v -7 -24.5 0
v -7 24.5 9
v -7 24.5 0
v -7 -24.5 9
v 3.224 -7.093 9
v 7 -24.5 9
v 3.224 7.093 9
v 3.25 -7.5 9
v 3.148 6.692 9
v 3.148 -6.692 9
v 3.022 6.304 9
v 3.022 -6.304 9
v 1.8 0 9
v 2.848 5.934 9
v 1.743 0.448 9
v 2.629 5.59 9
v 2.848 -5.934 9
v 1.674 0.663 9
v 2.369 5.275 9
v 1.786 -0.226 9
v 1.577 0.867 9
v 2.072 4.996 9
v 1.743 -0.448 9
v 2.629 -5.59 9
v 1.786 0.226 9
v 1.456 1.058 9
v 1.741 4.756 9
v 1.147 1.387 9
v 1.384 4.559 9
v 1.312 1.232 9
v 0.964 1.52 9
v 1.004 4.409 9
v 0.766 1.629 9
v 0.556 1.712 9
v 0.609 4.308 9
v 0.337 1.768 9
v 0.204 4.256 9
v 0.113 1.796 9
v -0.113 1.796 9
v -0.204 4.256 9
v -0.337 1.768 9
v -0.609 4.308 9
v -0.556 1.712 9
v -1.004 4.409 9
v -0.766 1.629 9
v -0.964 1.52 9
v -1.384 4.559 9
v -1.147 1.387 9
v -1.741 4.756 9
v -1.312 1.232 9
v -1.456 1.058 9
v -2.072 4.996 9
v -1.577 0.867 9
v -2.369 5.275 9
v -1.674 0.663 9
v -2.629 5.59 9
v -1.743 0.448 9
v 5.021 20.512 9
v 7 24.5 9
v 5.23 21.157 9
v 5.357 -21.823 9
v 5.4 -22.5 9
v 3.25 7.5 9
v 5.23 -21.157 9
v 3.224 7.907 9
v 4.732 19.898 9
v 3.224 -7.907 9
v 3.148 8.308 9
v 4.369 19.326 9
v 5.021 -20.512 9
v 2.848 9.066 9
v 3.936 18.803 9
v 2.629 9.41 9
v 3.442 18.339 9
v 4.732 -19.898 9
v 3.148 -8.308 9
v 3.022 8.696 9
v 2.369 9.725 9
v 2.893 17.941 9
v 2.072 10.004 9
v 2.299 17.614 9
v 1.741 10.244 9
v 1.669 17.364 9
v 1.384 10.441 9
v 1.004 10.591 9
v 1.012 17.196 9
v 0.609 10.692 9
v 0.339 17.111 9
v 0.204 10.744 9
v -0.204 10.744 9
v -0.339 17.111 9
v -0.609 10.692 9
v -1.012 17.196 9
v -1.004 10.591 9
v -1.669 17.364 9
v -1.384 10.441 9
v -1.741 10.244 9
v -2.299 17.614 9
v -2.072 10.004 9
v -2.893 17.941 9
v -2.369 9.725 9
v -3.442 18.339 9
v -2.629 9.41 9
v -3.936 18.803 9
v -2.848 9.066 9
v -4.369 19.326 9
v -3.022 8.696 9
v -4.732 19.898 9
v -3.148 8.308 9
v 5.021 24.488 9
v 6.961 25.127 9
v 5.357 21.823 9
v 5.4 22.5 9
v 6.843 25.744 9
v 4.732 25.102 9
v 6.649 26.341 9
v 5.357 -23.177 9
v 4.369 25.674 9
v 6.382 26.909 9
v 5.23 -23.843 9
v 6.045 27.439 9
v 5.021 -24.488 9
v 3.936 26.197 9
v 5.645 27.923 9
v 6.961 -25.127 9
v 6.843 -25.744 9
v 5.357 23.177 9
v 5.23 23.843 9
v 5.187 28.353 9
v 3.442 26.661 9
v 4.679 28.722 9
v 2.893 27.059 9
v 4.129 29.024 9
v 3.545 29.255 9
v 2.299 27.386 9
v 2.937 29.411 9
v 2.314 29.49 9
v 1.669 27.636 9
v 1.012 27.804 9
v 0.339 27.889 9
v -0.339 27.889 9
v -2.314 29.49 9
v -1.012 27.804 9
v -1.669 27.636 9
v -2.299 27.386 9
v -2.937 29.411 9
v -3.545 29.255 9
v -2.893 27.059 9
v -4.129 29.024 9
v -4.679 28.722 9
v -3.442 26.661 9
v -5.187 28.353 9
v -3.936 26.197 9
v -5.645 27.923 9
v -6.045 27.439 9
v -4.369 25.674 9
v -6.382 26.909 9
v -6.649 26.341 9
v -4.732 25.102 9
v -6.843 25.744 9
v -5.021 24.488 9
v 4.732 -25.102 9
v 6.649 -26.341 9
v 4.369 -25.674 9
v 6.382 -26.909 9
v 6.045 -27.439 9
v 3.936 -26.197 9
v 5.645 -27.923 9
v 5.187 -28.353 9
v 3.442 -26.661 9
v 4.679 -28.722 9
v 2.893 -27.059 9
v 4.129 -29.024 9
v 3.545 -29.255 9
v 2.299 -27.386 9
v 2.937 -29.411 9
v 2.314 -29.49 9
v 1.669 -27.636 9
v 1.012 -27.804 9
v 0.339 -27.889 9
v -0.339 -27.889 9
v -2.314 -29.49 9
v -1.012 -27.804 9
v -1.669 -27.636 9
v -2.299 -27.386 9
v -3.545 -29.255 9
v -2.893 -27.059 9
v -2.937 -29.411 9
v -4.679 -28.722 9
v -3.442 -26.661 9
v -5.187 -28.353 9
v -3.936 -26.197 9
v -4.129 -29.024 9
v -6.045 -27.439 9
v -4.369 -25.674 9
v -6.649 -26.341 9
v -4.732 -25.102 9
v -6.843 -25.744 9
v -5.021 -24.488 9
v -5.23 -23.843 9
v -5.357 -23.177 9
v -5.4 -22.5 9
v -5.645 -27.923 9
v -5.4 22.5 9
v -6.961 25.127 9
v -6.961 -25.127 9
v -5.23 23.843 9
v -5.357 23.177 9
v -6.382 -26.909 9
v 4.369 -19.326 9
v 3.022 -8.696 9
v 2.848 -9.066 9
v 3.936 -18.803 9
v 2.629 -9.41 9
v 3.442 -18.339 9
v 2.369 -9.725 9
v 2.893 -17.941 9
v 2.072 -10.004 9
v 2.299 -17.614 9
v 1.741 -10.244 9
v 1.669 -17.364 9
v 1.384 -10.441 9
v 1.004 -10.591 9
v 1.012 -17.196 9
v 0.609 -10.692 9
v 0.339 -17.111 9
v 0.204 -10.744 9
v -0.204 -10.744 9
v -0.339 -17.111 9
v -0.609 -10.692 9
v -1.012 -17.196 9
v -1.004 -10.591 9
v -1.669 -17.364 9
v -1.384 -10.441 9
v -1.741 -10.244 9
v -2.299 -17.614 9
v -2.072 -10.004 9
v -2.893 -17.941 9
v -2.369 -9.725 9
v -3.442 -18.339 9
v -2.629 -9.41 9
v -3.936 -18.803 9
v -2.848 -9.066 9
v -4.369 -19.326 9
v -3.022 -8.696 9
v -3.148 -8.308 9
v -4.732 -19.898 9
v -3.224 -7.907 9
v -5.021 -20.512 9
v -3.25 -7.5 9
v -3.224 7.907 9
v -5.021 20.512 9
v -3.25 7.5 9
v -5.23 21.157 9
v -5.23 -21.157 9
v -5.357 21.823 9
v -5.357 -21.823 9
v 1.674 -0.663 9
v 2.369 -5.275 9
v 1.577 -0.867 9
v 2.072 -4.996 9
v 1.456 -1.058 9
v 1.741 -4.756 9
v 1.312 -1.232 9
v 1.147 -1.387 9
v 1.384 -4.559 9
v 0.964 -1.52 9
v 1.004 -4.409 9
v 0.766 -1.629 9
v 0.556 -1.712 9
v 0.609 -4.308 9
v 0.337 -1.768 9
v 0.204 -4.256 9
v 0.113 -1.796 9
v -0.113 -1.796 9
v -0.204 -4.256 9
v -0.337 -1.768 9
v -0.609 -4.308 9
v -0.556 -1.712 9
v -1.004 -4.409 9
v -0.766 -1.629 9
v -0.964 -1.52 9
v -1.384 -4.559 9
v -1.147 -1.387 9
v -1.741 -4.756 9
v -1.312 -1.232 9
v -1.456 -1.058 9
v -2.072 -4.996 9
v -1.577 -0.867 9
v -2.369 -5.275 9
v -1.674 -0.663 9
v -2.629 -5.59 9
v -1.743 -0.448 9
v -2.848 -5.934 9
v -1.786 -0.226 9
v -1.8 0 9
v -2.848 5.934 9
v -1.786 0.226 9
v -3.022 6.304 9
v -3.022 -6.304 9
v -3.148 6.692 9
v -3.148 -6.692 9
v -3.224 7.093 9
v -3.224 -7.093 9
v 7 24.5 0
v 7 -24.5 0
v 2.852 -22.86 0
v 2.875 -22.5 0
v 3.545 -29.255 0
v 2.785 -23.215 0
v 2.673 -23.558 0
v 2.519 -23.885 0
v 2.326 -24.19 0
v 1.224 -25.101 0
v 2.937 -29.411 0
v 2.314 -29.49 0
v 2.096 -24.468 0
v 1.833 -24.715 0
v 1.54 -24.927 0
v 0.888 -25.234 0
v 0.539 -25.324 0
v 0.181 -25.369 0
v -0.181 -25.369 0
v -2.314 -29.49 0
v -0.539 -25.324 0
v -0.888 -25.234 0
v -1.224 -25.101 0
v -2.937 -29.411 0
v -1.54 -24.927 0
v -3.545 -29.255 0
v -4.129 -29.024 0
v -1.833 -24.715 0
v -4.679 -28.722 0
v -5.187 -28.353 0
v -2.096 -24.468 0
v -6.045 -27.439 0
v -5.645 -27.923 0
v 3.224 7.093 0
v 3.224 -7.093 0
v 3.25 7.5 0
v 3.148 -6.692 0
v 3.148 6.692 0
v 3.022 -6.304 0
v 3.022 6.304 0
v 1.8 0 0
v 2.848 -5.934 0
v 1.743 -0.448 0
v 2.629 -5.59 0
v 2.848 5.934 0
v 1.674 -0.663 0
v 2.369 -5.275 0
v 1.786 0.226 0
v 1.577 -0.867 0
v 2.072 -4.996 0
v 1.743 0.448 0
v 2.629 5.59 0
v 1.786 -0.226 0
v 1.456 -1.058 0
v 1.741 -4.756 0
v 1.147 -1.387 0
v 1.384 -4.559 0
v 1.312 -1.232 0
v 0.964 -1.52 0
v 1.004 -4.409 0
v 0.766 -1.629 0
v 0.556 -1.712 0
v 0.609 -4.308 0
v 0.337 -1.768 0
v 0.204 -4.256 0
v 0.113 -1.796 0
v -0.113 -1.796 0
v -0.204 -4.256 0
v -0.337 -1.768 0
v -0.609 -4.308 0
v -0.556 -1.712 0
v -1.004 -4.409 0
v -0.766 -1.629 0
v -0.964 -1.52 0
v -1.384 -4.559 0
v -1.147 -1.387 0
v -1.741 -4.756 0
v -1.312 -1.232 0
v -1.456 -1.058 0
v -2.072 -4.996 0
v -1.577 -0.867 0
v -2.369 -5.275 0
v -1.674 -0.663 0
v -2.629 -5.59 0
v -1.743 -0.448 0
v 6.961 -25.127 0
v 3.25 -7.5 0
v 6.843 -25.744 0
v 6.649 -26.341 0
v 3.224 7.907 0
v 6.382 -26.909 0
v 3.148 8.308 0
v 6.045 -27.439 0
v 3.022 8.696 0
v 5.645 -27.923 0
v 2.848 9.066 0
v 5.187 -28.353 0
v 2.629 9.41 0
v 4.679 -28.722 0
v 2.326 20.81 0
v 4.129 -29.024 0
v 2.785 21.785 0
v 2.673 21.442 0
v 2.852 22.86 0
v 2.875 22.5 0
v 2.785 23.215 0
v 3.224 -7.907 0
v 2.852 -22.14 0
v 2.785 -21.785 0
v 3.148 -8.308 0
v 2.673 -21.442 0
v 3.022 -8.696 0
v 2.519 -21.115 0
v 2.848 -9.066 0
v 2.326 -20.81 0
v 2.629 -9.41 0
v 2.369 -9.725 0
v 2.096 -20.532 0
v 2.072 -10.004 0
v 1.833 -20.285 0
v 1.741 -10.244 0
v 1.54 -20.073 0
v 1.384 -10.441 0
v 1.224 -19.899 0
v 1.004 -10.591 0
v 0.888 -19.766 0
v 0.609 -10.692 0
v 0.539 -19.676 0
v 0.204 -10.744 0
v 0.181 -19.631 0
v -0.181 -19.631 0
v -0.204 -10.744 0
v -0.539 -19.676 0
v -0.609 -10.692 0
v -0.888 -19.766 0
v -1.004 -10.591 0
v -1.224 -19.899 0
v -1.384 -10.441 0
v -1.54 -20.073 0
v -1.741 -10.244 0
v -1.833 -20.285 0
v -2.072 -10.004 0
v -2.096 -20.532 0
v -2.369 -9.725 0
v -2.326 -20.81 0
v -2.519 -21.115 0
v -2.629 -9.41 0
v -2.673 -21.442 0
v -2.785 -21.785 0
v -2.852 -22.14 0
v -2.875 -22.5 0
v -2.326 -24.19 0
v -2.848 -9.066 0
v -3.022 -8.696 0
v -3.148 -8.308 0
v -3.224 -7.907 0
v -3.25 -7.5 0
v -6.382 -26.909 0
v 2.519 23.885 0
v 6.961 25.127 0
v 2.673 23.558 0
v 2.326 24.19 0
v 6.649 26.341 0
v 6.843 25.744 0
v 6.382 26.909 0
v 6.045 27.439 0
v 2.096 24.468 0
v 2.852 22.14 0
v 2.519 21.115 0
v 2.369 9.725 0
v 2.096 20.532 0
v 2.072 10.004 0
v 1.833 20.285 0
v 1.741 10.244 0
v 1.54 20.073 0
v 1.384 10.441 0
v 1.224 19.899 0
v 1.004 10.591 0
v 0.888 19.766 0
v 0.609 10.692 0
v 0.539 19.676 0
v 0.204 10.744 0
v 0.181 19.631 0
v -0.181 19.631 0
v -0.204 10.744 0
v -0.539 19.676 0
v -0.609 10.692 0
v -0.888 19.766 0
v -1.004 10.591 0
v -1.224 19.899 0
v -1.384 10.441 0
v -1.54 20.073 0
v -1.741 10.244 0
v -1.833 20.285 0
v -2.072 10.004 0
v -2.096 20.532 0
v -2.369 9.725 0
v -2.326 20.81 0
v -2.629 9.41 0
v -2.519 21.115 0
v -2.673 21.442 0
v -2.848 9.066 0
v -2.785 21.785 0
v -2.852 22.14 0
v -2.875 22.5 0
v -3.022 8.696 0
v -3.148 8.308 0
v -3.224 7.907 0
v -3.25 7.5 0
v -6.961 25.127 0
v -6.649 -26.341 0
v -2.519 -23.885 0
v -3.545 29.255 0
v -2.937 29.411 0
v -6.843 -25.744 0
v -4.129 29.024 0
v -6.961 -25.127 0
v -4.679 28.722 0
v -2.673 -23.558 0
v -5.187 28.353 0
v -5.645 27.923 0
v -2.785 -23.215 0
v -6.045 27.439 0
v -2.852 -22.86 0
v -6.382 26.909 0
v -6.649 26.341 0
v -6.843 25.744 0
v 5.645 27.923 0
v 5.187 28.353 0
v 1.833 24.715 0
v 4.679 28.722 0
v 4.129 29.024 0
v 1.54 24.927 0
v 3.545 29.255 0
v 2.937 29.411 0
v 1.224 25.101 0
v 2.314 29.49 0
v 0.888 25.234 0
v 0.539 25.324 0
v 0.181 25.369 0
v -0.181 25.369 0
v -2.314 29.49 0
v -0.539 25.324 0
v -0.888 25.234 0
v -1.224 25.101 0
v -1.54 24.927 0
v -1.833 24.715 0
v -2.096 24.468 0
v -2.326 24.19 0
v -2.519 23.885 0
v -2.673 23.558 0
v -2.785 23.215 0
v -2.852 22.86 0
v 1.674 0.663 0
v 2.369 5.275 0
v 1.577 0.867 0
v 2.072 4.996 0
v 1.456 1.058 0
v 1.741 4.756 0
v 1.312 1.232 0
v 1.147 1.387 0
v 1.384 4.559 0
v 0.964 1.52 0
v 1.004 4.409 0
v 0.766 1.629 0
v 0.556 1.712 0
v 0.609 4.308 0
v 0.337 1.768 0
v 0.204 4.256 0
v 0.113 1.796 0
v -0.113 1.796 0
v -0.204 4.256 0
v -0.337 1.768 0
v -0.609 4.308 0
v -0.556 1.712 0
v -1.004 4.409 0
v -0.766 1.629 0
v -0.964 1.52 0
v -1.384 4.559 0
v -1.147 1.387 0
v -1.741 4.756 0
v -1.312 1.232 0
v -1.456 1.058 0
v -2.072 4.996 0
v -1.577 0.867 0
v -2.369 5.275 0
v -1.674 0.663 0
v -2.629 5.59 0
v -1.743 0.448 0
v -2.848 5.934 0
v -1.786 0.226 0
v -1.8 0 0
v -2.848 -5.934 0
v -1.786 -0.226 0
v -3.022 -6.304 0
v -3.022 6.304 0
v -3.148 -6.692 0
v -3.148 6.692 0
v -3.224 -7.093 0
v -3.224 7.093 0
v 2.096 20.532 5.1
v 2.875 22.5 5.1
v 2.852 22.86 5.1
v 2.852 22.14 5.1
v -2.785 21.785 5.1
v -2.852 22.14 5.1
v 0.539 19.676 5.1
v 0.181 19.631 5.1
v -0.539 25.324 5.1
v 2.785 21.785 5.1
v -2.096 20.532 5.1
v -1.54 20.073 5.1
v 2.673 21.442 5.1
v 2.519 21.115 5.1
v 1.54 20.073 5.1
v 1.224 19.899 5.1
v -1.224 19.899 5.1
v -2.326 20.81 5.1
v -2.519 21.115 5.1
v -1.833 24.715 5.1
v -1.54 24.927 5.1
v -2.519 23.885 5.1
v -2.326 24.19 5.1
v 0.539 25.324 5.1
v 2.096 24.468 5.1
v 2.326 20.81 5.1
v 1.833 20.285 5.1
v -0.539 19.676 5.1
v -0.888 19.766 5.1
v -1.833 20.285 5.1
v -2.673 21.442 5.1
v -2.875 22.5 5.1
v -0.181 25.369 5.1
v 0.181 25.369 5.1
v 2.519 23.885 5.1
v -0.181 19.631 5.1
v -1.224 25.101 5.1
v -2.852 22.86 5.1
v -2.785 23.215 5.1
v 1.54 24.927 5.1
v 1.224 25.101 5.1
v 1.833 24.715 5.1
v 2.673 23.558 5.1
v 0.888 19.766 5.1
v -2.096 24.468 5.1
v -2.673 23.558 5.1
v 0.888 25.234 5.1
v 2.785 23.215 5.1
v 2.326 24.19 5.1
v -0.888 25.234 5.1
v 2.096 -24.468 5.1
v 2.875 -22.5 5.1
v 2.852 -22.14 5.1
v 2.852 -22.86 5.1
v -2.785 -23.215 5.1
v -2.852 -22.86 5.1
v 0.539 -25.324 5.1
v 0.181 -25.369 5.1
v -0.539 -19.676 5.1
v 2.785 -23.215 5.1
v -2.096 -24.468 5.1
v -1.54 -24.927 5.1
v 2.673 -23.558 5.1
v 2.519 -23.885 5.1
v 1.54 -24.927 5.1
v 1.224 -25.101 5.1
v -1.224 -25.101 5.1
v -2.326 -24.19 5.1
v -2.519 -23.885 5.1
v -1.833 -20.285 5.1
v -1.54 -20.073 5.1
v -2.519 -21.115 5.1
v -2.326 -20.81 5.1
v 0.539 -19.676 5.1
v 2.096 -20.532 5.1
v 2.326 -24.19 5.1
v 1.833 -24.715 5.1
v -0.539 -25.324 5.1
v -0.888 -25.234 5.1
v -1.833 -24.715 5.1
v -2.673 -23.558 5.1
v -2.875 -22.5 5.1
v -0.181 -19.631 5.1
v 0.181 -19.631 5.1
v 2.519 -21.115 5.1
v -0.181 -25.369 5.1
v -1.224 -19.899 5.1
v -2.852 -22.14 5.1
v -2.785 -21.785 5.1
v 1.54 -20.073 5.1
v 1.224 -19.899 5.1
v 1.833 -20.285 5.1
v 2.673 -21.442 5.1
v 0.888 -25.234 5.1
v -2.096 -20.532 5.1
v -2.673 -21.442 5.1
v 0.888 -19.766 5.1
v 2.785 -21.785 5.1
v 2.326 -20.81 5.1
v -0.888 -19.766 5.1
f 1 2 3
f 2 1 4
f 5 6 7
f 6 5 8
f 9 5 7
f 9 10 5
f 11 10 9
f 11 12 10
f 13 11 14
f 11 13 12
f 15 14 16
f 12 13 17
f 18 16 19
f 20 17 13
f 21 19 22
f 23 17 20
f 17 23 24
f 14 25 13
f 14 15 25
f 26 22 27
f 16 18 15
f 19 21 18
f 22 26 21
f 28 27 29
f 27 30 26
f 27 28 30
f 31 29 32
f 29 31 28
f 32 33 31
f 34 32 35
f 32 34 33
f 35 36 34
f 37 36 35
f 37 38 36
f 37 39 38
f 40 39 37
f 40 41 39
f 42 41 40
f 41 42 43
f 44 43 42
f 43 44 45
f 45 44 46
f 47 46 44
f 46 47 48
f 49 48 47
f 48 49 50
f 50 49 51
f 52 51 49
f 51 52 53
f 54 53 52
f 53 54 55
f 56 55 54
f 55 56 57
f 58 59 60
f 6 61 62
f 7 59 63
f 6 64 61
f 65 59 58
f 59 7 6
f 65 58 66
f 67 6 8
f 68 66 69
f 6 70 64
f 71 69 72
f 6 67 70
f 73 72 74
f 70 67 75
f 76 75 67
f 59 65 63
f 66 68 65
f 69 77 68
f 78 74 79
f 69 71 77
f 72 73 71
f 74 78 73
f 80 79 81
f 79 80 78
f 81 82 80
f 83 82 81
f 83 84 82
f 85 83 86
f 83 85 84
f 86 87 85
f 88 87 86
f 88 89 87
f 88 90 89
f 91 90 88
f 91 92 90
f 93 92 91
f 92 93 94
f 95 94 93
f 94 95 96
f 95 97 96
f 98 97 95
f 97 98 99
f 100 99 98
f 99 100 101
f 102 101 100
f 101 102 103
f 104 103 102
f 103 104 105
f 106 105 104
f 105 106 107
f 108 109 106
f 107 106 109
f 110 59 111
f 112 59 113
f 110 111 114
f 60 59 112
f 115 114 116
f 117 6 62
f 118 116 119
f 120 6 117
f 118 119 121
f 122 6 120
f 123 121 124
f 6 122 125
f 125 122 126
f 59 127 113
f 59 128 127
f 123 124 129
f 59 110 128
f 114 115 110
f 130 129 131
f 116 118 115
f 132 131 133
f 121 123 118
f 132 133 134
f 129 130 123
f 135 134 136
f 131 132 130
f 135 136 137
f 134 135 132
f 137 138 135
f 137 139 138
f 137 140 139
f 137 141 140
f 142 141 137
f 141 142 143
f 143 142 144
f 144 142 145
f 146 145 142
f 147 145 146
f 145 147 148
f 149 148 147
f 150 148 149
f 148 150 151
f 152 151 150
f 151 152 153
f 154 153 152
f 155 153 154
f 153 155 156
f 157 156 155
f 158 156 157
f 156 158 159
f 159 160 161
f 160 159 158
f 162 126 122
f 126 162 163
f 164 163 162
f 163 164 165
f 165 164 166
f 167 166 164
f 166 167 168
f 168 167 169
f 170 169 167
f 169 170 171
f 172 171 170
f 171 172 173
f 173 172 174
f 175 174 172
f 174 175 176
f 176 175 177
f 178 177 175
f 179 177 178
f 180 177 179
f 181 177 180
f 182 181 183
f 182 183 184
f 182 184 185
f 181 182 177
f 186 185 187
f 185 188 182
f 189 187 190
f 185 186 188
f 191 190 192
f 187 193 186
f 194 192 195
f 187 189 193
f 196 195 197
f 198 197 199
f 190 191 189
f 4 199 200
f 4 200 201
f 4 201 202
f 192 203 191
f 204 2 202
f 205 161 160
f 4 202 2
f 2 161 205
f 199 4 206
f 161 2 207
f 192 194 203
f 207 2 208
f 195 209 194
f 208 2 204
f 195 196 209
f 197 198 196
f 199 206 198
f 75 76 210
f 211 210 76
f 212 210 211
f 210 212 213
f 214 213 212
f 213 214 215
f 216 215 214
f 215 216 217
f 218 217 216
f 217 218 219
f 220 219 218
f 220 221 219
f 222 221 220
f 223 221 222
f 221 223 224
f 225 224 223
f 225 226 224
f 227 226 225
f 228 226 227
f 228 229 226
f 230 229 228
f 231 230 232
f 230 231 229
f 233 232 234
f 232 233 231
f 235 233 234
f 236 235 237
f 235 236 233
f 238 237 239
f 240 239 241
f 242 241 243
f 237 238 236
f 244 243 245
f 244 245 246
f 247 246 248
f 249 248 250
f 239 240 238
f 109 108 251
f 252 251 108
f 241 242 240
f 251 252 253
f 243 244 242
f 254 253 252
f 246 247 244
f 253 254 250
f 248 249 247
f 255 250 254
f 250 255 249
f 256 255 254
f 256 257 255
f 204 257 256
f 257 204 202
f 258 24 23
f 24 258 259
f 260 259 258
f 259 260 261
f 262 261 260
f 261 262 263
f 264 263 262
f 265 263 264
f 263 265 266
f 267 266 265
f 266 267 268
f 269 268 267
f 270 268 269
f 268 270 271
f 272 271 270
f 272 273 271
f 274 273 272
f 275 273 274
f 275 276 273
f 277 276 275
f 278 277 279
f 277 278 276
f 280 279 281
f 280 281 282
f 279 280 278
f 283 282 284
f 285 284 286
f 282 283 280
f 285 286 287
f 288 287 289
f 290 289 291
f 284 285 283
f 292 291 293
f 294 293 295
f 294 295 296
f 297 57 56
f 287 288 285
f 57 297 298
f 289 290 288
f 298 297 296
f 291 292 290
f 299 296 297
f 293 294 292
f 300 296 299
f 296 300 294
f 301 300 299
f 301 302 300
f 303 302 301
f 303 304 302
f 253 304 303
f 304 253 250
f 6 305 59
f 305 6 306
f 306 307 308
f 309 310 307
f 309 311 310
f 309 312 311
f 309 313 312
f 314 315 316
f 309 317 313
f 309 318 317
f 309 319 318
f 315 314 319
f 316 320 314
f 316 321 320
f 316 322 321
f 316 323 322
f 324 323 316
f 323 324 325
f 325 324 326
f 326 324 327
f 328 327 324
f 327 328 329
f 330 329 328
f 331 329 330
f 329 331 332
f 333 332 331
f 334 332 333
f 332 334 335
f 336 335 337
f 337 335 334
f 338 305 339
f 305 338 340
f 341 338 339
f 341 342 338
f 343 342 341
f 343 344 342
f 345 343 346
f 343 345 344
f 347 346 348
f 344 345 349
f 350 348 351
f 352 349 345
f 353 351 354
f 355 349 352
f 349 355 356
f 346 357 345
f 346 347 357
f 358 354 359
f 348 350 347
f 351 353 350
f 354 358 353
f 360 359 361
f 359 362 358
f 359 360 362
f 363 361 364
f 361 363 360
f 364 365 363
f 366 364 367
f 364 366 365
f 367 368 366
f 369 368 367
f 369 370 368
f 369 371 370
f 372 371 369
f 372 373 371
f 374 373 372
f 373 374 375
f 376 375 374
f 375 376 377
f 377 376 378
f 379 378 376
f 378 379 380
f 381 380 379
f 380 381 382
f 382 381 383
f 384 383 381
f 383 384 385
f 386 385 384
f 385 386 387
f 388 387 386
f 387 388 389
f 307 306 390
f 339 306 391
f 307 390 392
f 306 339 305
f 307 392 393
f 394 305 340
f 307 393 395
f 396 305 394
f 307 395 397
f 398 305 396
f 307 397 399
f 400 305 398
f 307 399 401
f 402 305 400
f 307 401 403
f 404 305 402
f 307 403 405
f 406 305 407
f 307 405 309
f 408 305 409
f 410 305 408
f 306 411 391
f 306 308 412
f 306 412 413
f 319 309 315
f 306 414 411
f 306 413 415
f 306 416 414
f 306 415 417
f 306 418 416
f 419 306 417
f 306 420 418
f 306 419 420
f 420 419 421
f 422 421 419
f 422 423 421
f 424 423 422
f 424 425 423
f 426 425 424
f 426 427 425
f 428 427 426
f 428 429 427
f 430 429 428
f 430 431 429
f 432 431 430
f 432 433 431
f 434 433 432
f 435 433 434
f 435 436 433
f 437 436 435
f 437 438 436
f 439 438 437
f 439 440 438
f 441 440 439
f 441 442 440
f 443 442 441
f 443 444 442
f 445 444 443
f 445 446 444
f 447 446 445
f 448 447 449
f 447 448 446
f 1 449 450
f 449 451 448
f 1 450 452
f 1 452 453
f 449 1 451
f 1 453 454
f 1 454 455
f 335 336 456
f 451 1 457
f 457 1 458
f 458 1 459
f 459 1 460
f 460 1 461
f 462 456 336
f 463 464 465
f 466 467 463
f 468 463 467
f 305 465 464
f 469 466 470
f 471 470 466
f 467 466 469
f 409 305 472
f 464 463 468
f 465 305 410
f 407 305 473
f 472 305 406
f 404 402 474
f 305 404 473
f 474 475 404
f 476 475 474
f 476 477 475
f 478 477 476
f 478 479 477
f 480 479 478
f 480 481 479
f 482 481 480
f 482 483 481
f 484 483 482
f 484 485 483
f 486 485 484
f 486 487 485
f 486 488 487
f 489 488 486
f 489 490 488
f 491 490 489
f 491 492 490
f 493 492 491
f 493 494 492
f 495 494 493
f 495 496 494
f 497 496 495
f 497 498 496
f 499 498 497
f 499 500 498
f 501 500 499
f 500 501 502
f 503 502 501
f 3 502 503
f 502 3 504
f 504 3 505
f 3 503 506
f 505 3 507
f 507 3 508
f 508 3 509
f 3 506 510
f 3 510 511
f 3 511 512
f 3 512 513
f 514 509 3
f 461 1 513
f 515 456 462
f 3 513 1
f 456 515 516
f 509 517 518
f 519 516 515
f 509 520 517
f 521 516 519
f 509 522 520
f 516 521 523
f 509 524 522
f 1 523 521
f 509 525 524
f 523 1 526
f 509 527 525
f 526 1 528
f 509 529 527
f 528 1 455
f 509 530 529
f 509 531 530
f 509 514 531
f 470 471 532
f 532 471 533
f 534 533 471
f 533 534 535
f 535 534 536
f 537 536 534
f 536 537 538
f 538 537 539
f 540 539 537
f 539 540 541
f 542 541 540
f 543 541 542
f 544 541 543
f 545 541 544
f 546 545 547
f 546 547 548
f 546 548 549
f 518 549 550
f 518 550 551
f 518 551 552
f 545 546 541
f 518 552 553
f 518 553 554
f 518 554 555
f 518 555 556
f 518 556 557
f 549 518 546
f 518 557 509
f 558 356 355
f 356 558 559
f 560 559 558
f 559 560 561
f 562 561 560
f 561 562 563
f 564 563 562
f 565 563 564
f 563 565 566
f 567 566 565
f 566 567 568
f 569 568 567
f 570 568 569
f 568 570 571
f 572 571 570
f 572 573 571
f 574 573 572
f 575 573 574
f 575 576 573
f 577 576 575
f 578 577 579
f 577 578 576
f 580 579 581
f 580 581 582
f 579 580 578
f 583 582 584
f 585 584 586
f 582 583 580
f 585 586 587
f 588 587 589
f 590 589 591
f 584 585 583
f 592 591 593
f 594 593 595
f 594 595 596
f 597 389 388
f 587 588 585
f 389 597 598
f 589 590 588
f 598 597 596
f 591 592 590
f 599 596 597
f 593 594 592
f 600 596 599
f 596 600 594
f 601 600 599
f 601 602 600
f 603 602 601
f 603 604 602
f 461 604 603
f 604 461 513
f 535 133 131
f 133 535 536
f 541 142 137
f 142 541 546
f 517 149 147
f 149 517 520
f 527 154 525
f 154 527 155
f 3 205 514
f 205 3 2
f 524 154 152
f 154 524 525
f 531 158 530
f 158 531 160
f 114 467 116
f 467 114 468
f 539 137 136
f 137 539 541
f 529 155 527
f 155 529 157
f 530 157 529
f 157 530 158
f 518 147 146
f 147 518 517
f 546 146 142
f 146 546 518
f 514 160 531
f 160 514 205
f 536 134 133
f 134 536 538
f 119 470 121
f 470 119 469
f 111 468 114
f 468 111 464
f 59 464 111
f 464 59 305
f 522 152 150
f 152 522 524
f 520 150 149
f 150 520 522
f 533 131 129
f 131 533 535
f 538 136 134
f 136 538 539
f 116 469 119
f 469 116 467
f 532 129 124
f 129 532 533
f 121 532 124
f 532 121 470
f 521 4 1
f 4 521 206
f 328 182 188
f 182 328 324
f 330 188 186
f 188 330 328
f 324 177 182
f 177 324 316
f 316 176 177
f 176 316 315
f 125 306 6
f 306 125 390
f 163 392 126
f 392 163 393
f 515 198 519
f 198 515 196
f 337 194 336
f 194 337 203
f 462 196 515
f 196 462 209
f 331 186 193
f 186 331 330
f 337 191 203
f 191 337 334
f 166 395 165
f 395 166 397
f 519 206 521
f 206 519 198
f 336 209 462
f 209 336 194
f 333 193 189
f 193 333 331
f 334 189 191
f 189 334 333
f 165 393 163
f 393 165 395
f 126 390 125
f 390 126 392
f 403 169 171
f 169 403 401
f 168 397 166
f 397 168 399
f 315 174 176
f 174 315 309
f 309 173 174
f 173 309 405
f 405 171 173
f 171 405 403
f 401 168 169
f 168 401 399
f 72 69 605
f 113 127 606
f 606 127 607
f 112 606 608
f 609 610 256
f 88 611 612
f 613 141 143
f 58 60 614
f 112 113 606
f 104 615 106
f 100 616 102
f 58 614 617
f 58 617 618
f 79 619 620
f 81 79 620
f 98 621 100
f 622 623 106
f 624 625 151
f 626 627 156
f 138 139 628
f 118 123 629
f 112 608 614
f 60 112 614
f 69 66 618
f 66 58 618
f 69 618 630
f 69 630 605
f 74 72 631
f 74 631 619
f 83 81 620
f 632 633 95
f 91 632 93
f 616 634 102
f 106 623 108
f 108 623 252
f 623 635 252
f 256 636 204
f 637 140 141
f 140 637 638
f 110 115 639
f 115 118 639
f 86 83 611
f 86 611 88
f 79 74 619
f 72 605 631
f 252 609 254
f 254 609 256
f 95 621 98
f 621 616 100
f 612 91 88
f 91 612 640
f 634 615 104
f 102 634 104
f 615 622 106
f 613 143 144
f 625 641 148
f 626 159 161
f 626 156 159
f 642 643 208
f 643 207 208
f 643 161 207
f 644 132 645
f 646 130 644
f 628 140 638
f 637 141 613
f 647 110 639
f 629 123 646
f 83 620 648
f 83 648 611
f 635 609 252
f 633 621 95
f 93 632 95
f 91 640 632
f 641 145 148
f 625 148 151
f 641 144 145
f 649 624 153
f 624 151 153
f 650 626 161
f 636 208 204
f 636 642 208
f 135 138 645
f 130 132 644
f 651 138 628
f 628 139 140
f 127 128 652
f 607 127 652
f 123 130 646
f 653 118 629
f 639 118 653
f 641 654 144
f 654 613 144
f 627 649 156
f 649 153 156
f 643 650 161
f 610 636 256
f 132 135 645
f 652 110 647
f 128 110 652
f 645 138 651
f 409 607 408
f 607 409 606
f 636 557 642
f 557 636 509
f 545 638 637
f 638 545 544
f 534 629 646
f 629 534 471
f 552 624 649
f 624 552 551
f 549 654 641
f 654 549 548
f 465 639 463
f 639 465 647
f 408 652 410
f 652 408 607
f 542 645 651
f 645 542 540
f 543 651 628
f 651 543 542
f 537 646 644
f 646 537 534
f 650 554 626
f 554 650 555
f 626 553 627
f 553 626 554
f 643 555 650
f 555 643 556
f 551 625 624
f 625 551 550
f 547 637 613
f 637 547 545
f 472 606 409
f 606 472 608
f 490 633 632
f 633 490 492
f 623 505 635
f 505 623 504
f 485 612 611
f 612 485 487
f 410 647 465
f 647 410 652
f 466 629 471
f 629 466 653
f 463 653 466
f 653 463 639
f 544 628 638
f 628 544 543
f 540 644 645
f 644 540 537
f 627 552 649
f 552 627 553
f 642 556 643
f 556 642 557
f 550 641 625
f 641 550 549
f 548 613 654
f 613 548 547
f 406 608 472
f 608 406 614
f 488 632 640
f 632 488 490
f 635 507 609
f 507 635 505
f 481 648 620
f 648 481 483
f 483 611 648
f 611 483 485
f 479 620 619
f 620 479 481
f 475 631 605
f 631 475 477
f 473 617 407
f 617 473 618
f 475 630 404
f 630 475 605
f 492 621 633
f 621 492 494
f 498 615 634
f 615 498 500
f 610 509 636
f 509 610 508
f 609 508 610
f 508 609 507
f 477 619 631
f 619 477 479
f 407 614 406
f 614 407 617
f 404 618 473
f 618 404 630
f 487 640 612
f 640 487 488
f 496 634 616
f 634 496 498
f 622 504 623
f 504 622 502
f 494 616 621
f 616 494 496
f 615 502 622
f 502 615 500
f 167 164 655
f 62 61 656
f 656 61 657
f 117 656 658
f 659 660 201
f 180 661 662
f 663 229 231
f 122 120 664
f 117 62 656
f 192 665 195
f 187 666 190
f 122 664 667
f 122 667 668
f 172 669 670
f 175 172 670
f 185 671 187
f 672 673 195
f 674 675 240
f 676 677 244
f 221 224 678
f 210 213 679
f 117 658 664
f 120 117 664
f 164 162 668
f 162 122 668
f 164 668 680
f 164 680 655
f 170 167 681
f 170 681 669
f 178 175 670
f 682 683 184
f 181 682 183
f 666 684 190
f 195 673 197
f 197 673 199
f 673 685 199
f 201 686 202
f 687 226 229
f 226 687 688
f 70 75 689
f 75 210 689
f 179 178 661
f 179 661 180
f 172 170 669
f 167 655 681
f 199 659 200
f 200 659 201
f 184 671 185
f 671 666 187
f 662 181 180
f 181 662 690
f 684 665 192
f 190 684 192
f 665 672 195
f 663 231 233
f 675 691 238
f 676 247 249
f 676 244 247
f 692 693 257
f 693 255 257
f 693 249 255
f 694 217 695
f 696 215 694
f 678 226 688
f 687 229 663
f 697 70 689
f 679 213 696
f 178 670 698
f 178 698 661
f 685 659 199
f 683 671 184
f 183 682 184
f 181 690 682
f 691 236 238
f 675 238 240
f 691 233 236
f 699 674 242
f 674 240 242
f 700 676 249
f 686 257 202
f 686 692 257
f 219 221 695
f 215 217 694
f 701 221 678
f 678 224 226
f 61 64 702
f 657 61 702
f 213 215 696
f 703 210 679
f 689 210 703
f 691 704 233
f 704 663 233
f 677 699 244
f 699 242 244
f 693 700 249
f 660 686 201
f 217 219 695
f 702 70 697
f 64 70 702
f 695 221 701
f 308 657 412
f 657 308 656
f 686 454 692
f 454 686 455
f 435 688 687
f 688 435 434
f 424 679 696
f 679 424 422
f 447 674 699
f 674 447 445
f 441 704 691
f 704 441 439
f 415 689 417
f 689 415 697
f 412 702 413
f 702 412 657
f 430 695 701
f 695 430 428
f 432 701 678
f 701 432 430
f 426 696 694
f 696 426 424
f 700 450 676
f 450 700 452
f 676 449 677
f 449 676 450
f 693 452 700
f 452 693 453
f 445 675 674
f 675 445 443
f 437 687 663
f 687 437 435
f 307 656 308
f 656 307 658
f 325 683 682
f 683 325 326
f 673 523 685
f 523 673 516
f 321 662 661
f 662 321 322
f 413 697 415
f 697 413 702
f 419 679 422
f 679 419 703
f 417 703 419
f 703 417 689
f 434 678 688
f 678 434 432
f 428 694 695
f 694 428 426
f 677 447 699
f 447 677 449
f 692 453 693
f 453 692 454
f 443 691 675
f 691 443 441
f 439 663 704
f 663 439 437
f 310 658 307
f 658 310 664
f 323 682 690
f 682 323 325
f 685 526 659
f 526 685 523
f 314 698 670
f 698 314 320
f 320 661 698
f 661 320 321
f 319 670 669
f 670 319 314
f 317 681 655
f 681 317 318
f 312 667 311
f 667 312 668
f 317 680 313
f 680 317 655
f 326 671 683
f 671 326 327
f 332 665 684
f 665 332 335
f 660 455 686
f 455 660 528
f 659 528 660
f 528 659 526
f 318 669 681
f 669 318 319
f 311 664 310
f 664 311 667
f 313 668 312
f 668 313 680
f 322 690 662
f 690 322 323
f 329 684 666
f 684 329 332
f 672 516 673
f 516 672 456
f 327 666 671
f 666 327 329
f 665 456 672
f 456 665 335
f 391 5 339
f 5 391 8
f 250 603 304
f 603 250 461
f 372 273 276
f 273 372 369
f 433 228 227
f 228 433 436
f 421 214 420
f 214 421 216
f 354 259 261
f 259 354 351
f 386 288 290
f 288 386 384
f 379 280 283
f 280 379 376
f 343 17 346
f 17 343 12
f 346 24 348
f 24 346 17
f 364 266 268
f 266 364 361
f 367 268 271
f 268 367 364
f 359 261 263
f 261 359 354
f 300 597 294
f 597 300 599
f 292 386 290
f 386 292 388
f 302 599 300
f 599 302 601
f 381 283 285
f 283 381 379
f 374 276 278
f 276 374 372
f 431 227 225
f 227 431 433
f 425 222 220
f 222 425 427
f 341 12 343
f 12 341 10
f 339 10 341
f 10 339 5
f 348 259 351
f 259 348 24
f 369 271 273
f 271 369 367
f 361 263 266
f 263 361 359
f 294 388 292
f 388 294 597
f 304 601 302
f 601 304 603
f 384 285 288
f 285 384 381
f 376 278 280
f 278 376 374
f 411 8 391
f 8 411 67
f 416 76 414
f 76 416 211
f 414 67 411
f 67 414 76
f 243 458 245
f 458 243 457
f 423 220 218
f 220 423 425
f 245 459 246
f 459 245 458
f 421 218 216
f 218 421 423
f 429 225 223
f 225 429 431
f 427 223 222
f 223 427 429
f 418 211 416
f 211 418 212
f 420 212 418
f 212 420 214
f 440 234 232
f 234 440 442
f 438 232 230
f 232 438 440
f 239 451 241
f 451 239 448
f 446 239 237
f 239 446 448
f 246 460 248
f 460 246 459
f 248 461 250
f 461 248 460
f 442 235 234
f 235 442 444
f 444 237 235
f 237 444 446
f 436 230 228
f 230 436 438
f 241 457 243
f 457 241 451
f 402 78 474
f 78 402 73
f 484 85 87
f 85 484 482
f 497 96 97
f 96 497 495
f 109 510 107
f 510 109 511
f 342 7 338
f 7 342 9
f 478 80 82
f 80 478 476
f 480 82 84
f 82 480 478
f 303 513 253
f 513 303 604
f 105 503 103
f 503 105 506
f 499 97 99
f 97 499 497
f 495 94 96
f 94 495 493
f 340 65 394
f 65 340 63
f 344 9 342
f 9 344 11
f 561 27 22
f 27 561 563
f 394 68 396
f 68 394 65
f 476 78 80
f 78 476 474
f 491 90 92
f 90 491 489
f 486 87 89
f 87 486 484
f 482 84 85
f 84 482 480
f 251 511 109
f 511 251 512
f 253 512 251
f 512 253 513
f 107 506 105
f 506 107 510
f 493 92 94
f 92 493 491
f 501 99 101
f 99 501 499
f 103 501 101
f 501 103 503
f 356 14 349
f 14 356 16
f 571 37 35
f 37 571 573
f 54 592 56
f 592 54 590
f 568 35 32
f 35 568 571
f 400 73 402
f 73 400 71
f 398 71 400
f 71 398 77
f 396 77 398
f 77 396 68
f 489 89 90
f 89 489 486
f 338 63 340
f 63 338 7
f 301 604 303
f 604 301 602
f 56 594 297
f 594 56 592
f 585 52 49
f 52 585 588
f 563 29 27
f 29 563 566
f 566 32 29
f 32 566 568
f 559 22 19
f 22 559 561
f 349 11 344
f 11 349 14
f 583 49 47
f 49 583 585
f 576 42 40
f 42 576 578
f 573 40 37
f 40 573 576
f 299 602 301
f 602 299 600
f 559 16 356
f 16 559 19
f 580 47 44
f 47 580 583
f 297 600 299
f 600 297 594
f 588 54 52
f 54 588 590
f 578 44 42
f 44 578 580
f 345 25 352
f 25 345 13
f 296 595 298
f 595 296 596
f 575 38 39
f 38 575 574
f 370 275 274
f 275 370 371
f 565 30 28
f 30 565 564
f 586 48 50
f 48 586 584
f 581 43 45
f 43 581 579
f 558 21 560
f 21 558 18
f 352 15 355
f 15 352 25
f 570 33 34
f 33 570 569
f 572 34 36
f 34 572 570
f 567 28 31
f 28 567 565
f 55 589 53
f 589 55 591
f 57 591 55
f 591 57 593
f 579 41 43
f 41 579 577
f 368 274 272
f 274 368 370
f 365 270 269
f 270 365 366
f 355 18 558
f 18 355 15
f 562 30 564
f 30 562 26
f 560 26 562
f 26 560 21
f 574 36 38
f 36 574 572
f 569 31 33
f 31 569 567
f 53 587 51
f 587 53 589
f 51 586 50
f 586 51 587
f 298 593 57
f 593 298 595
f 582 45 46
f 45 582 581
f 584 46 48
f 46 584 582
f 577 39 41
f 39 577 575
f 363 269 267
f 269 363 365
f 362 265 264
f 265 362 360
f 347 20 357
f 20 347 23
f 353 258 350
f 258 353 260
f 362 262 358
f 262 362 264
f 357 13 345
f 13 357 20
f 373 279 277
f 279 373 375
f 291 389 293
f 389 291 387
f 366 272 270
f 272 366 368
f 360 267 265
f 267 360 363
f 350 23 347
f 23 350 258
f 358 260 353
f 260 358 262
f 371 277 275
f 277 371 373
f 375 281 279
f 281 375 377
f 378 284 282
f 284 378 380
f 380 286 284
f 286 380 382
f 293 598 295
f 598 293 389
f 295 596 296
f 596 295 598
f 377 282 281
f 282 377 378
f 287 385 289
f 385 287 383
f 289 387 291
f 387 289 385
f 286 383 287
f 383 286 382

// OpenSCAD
$fn = 50;


difference() {
	union() {
		hull() {
			translate(v = [-2.0000000000, 9.5000000000, 0]) {
				cylinder(h = 9, r = 5);
			}
			translate(v = [2.0000000000, 9.5000000000, 0]) {
				cylinder(h = 9, r = 5);
			}
			translate(v = [-2.0000000000, -9.5000000000, 0]) {
				cylinder(h = 9, r = 5);
			}
			translate(v = [2.0000000000, -9.5000000000, 0]) {
				cylinder(h = 9, r = 5);
			}
		}
		translate(v = [0.0000000000, 15.0000000000, 0]) {
			hull() {
				translate(v = [-2.0000000000, 9.5000000000, 0]) {
					cylinder(h = 9, r = 5);
				}
				translate(v = [2.0000000000, 9.5000000000, 0]) {
					cylinder(h = 9, r = 5);
				}
				translate(v = [-2.0000000000, -9.5000000000, 0]) {
					cylinder(h = 9, r = 5);
				}
				translate(v = [2.0000000000, -9.5000000000, 0]) {
					cylinder(h = 9, r = 5);
				}
			}
		}
		translate(v = [0.0000000000, 15.0000000000, 0]) {
			hull() {
				translate(v = [-2.0000000000, 9.5000000000, 0]) {
					cylinder(h = 9, r = 5);
				}
				translate(v = [2.0000000000, 9.5000000000, 0]) {
					cylinder(h = 9, r = 5);
				}
				translate(v = [-2.0000000000, -9.5000000000, 0]) {
					cylinder(h = 9, r = 5);
				}
				translate(v = [2.0000000000, -9.5000000000, 0]) {
					cylinder(h = 9, r = 5);
				}
			}
		}
		translate(v = [0.0000000000, -15.0000000000, 0]) {
			hull() {
				translate(v = [-2.0000000000, 9.5000000000, 0]) {
					cylinder(h = 9, r = 5);
				}
				translate(v = [2.0000000000, 9.5000000000, 0]) {
					cylinder(h = 9, r = 5);
				}
				translate(v = [-2.0000000000, -9.5000000000, 0]) {
					cylinder(h = 9, r = 5);
				}
				translate(v = [2.0000000000, -9.5000000000, 0]) {
					cylinder(h = 9, r = 5);
				}
			}
		}
		translate(v = [0.0000000000, -15.0000000000, 0]) {
			hull() {
				translate(v = [-2.0000000000, 9.5000000000, 0]) {
					cylinder(h = 9, r = 5);
				}
				translate(v = [2.0000000000, 9.5000000000, 0]) {
					cylinder(h = 9, r = 5);
				}
				translate(v = [-2.0000000000, -9.5000000000, 0]) {
					cylinder(h = 9, r = 5);
				}
				translate(v = [2.0000000000, -9.5000000000, 0]) {
					cylinder(h = 9, r = 5);
				}
			}
		}
	}
	union() {
		translate(v = [0.0000000000, 22.5000000000, 9]) {
			rotate(a = [0, 0, 0]) {
				difference() {
					union() {
						#translate(v = [0, 0, -9.0000000000]) {
							cylinder(h = 9, r = 2.6000000000);
						}
						#translate(v = [0, 0, -3.9000000000]) {
							cylinder(h = 3.9000000000, r1 = 2.8750000000, r2 = 5.4000000000);
						}
						#translate(v = [0, 0, -9.0000000000]) {
							cylinder(h = 9, r = 2.8750000000);
						}
						#translate(v = [0, 0, -9.0000000000]) {
							cylinder(h = 9, r = 2.6000000000);
						}
					}
					union();
				}
			}
		}
		translate(v = [0.0000000000, 22.5000000000, 9]) {
			rotate(a = [0, 0, 0]) {
				difference() {
					union() {
						#translate(v = [0, 0, -9.0000000000]) {
							cylinder(h = 9, r = 2.6000000000);
						}
						#translate(v = [0, 0, -3.9000000000]) {
							cylinder(h = 3.9000000000, r1 = 2.8750000000, r2 = 5.4000000000);
						}
						#translate(v = [0, 0, -9.0000000000]) {
							cylinder(h = 9, r = 2.8750000000);
						}
						#translate(v = [0, 0, -9.0000000000]) {
							cylinder(h = 9, r = 2.6000000000);
						}
					}
					union();
				}
			}
		}
		translate(v = [0.0000000000, -22.5000000000, 9]) {
			rotate(a = [0, 0, 0]) {
				difference() {
					union() {
						#translate(v = [0, 0, -9.0000000000]) {
							cylinder(h = 9, r = 2.6000000000);
						}
						#translate(v = [0, 0, -3.9000000000]) {
							cylinder(h = 3.9000000000, r1 = 2.8750000000, r2 = 5.4000000000);
						}
						#translate(v = [0, 0, -9.0000000000]) {
							cylinder(h = 9, r = 2.8750000000);
						}
						#translate(v = [0, 0, -9.0000000000]) {
							cylinder(h = 9, r = 2.6000000000);
						}
					}
					union();
				}
			}
		}
		translate(v = [0.0000000000, -22.5000000000, 9]) {
			rotate(a = [0, 0, 0]) {
				difference() {
					union() {
						#translate(v = [0, 0, -9.0000000000]) {
							cylinder(h = 9, r = 2.6000000000);
						}
						#translate(v = [0, 0, -3.9000000000]) {
							cylinder(h = 3.9000000000, r1 = 2.8750000000, r2 = 5.4000000000);
						}
						#translate(v = [0, 0, -9.0000000000]) {
							cylinder(h = 9, r = 2.8750000000);
						}
						#translate(v = [0, 0, -9.0000000000]) {
							cylinder(h = 9, r = 2.6000000000);
						}
					}
					union();
				}
			}
		}
		translate(v = [0.0000000000, -7.5000000000, 0]) {
			translate(v = [0, 0, -100]) {
				cylinder(h = 200, r = 3.2500000000);
			}
		}
		translate(v = [0.0000000000, 7.5000000000, 0]) {
			translate(v = [0, 0, -100]) {
				cylinder(h = 200, r = 3.2500000000);
			}
		}
		translate(v = [0.0000000000, -7.5000000000, 0]) {
			translate(v = [0, 0, -100]) {
				cylinder(h = 200, r = 1.8000000000);
			}
		}
		translate(v = [0, 0, -100]) {
			cylinder(h = 200, r = 1.8000000000);
		}
		translate(v = [0.0000000000, 7.5000000000, 0]) {
			translate(v = [0, 0, -100]) {
				cylinder(h = 200, r = 1.8000000000);
			}
		}
	}
}
